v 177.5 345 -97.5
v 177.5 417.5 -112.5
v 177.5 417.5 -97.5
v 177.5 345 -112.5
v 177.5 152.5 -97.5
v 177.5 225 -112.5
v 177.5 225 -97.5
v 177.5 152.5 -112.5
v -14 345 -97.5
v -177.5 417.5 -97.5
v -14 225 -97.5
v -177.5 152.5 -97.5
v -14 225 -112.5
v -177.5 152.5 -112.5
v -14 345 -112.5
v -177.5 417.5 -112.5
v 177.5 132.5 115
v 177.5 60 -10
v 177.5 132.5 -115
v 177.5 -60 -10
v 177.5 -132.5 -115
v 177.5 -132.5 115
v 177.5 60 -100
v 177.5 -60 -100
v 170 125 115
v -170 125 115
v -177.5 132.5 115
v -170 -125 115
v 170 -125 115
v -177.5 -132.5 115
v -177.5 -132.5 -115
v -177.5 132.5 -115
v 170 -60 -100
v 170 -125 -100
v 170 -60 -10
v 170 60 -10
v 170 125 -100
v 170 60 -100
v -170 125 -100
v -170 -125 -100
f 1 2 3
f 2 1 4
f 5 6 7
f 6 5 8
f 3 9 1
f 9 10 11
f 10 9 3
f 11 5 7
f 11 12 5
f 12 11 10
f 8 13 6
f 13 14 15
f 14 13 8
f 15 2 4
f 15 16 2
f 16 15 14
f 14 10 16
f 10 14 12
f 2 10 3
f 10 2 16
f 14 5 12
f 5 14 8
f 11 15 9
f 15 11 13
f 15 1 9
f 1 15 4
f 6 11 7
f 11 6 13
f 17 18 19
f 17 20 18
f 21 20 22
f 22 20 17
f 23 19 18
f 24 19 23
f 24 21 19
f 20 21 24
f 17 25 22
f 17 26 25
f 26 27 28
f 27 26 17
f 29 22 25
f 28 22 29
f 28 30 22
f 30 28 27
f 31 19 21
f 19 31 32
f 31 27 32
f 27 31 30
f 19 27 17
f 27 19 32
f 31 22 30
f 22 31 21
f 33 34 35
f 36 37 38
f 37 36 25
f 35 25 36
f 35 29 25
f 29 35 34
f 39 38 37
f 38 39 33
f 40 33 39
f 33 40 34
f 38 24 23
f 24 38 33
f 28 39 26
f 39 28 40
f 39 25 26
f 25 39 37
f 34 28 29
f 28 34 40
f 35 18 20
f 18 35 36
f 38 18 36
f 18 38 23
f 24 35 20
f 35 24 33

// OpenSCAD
// largura = 440;
largura = 250;
// profundidade = 550;
profundidade = 340;
// altura = 440;
altura = 230;

parede = 15;

profDHT = 260;
largDHT = 120;

altUSB = 90;
largUSB = 120;

module caixa(){
    difference(){
        cube([profundidade+parede, largura+parede, altura], center=true); //volume externo
        translate([0,0,parede]) cube([profundidade, largura, altura], center=true); // volume interno
        translate([(profundidade)/2, 0, -55]) cube([30, largUSB, altUSB], center=true); // abertura usb
    }
}

module tampa(){
    difference(){
        cube([profundidade+parede, largura+parede, parede], center=true);
        translate([116,0,0]) cube([profDHT, largDHT, 300], center=true);
        }
}
translate([0,largura+35,-((altura/2)-10)]) tampa();

caixa();
